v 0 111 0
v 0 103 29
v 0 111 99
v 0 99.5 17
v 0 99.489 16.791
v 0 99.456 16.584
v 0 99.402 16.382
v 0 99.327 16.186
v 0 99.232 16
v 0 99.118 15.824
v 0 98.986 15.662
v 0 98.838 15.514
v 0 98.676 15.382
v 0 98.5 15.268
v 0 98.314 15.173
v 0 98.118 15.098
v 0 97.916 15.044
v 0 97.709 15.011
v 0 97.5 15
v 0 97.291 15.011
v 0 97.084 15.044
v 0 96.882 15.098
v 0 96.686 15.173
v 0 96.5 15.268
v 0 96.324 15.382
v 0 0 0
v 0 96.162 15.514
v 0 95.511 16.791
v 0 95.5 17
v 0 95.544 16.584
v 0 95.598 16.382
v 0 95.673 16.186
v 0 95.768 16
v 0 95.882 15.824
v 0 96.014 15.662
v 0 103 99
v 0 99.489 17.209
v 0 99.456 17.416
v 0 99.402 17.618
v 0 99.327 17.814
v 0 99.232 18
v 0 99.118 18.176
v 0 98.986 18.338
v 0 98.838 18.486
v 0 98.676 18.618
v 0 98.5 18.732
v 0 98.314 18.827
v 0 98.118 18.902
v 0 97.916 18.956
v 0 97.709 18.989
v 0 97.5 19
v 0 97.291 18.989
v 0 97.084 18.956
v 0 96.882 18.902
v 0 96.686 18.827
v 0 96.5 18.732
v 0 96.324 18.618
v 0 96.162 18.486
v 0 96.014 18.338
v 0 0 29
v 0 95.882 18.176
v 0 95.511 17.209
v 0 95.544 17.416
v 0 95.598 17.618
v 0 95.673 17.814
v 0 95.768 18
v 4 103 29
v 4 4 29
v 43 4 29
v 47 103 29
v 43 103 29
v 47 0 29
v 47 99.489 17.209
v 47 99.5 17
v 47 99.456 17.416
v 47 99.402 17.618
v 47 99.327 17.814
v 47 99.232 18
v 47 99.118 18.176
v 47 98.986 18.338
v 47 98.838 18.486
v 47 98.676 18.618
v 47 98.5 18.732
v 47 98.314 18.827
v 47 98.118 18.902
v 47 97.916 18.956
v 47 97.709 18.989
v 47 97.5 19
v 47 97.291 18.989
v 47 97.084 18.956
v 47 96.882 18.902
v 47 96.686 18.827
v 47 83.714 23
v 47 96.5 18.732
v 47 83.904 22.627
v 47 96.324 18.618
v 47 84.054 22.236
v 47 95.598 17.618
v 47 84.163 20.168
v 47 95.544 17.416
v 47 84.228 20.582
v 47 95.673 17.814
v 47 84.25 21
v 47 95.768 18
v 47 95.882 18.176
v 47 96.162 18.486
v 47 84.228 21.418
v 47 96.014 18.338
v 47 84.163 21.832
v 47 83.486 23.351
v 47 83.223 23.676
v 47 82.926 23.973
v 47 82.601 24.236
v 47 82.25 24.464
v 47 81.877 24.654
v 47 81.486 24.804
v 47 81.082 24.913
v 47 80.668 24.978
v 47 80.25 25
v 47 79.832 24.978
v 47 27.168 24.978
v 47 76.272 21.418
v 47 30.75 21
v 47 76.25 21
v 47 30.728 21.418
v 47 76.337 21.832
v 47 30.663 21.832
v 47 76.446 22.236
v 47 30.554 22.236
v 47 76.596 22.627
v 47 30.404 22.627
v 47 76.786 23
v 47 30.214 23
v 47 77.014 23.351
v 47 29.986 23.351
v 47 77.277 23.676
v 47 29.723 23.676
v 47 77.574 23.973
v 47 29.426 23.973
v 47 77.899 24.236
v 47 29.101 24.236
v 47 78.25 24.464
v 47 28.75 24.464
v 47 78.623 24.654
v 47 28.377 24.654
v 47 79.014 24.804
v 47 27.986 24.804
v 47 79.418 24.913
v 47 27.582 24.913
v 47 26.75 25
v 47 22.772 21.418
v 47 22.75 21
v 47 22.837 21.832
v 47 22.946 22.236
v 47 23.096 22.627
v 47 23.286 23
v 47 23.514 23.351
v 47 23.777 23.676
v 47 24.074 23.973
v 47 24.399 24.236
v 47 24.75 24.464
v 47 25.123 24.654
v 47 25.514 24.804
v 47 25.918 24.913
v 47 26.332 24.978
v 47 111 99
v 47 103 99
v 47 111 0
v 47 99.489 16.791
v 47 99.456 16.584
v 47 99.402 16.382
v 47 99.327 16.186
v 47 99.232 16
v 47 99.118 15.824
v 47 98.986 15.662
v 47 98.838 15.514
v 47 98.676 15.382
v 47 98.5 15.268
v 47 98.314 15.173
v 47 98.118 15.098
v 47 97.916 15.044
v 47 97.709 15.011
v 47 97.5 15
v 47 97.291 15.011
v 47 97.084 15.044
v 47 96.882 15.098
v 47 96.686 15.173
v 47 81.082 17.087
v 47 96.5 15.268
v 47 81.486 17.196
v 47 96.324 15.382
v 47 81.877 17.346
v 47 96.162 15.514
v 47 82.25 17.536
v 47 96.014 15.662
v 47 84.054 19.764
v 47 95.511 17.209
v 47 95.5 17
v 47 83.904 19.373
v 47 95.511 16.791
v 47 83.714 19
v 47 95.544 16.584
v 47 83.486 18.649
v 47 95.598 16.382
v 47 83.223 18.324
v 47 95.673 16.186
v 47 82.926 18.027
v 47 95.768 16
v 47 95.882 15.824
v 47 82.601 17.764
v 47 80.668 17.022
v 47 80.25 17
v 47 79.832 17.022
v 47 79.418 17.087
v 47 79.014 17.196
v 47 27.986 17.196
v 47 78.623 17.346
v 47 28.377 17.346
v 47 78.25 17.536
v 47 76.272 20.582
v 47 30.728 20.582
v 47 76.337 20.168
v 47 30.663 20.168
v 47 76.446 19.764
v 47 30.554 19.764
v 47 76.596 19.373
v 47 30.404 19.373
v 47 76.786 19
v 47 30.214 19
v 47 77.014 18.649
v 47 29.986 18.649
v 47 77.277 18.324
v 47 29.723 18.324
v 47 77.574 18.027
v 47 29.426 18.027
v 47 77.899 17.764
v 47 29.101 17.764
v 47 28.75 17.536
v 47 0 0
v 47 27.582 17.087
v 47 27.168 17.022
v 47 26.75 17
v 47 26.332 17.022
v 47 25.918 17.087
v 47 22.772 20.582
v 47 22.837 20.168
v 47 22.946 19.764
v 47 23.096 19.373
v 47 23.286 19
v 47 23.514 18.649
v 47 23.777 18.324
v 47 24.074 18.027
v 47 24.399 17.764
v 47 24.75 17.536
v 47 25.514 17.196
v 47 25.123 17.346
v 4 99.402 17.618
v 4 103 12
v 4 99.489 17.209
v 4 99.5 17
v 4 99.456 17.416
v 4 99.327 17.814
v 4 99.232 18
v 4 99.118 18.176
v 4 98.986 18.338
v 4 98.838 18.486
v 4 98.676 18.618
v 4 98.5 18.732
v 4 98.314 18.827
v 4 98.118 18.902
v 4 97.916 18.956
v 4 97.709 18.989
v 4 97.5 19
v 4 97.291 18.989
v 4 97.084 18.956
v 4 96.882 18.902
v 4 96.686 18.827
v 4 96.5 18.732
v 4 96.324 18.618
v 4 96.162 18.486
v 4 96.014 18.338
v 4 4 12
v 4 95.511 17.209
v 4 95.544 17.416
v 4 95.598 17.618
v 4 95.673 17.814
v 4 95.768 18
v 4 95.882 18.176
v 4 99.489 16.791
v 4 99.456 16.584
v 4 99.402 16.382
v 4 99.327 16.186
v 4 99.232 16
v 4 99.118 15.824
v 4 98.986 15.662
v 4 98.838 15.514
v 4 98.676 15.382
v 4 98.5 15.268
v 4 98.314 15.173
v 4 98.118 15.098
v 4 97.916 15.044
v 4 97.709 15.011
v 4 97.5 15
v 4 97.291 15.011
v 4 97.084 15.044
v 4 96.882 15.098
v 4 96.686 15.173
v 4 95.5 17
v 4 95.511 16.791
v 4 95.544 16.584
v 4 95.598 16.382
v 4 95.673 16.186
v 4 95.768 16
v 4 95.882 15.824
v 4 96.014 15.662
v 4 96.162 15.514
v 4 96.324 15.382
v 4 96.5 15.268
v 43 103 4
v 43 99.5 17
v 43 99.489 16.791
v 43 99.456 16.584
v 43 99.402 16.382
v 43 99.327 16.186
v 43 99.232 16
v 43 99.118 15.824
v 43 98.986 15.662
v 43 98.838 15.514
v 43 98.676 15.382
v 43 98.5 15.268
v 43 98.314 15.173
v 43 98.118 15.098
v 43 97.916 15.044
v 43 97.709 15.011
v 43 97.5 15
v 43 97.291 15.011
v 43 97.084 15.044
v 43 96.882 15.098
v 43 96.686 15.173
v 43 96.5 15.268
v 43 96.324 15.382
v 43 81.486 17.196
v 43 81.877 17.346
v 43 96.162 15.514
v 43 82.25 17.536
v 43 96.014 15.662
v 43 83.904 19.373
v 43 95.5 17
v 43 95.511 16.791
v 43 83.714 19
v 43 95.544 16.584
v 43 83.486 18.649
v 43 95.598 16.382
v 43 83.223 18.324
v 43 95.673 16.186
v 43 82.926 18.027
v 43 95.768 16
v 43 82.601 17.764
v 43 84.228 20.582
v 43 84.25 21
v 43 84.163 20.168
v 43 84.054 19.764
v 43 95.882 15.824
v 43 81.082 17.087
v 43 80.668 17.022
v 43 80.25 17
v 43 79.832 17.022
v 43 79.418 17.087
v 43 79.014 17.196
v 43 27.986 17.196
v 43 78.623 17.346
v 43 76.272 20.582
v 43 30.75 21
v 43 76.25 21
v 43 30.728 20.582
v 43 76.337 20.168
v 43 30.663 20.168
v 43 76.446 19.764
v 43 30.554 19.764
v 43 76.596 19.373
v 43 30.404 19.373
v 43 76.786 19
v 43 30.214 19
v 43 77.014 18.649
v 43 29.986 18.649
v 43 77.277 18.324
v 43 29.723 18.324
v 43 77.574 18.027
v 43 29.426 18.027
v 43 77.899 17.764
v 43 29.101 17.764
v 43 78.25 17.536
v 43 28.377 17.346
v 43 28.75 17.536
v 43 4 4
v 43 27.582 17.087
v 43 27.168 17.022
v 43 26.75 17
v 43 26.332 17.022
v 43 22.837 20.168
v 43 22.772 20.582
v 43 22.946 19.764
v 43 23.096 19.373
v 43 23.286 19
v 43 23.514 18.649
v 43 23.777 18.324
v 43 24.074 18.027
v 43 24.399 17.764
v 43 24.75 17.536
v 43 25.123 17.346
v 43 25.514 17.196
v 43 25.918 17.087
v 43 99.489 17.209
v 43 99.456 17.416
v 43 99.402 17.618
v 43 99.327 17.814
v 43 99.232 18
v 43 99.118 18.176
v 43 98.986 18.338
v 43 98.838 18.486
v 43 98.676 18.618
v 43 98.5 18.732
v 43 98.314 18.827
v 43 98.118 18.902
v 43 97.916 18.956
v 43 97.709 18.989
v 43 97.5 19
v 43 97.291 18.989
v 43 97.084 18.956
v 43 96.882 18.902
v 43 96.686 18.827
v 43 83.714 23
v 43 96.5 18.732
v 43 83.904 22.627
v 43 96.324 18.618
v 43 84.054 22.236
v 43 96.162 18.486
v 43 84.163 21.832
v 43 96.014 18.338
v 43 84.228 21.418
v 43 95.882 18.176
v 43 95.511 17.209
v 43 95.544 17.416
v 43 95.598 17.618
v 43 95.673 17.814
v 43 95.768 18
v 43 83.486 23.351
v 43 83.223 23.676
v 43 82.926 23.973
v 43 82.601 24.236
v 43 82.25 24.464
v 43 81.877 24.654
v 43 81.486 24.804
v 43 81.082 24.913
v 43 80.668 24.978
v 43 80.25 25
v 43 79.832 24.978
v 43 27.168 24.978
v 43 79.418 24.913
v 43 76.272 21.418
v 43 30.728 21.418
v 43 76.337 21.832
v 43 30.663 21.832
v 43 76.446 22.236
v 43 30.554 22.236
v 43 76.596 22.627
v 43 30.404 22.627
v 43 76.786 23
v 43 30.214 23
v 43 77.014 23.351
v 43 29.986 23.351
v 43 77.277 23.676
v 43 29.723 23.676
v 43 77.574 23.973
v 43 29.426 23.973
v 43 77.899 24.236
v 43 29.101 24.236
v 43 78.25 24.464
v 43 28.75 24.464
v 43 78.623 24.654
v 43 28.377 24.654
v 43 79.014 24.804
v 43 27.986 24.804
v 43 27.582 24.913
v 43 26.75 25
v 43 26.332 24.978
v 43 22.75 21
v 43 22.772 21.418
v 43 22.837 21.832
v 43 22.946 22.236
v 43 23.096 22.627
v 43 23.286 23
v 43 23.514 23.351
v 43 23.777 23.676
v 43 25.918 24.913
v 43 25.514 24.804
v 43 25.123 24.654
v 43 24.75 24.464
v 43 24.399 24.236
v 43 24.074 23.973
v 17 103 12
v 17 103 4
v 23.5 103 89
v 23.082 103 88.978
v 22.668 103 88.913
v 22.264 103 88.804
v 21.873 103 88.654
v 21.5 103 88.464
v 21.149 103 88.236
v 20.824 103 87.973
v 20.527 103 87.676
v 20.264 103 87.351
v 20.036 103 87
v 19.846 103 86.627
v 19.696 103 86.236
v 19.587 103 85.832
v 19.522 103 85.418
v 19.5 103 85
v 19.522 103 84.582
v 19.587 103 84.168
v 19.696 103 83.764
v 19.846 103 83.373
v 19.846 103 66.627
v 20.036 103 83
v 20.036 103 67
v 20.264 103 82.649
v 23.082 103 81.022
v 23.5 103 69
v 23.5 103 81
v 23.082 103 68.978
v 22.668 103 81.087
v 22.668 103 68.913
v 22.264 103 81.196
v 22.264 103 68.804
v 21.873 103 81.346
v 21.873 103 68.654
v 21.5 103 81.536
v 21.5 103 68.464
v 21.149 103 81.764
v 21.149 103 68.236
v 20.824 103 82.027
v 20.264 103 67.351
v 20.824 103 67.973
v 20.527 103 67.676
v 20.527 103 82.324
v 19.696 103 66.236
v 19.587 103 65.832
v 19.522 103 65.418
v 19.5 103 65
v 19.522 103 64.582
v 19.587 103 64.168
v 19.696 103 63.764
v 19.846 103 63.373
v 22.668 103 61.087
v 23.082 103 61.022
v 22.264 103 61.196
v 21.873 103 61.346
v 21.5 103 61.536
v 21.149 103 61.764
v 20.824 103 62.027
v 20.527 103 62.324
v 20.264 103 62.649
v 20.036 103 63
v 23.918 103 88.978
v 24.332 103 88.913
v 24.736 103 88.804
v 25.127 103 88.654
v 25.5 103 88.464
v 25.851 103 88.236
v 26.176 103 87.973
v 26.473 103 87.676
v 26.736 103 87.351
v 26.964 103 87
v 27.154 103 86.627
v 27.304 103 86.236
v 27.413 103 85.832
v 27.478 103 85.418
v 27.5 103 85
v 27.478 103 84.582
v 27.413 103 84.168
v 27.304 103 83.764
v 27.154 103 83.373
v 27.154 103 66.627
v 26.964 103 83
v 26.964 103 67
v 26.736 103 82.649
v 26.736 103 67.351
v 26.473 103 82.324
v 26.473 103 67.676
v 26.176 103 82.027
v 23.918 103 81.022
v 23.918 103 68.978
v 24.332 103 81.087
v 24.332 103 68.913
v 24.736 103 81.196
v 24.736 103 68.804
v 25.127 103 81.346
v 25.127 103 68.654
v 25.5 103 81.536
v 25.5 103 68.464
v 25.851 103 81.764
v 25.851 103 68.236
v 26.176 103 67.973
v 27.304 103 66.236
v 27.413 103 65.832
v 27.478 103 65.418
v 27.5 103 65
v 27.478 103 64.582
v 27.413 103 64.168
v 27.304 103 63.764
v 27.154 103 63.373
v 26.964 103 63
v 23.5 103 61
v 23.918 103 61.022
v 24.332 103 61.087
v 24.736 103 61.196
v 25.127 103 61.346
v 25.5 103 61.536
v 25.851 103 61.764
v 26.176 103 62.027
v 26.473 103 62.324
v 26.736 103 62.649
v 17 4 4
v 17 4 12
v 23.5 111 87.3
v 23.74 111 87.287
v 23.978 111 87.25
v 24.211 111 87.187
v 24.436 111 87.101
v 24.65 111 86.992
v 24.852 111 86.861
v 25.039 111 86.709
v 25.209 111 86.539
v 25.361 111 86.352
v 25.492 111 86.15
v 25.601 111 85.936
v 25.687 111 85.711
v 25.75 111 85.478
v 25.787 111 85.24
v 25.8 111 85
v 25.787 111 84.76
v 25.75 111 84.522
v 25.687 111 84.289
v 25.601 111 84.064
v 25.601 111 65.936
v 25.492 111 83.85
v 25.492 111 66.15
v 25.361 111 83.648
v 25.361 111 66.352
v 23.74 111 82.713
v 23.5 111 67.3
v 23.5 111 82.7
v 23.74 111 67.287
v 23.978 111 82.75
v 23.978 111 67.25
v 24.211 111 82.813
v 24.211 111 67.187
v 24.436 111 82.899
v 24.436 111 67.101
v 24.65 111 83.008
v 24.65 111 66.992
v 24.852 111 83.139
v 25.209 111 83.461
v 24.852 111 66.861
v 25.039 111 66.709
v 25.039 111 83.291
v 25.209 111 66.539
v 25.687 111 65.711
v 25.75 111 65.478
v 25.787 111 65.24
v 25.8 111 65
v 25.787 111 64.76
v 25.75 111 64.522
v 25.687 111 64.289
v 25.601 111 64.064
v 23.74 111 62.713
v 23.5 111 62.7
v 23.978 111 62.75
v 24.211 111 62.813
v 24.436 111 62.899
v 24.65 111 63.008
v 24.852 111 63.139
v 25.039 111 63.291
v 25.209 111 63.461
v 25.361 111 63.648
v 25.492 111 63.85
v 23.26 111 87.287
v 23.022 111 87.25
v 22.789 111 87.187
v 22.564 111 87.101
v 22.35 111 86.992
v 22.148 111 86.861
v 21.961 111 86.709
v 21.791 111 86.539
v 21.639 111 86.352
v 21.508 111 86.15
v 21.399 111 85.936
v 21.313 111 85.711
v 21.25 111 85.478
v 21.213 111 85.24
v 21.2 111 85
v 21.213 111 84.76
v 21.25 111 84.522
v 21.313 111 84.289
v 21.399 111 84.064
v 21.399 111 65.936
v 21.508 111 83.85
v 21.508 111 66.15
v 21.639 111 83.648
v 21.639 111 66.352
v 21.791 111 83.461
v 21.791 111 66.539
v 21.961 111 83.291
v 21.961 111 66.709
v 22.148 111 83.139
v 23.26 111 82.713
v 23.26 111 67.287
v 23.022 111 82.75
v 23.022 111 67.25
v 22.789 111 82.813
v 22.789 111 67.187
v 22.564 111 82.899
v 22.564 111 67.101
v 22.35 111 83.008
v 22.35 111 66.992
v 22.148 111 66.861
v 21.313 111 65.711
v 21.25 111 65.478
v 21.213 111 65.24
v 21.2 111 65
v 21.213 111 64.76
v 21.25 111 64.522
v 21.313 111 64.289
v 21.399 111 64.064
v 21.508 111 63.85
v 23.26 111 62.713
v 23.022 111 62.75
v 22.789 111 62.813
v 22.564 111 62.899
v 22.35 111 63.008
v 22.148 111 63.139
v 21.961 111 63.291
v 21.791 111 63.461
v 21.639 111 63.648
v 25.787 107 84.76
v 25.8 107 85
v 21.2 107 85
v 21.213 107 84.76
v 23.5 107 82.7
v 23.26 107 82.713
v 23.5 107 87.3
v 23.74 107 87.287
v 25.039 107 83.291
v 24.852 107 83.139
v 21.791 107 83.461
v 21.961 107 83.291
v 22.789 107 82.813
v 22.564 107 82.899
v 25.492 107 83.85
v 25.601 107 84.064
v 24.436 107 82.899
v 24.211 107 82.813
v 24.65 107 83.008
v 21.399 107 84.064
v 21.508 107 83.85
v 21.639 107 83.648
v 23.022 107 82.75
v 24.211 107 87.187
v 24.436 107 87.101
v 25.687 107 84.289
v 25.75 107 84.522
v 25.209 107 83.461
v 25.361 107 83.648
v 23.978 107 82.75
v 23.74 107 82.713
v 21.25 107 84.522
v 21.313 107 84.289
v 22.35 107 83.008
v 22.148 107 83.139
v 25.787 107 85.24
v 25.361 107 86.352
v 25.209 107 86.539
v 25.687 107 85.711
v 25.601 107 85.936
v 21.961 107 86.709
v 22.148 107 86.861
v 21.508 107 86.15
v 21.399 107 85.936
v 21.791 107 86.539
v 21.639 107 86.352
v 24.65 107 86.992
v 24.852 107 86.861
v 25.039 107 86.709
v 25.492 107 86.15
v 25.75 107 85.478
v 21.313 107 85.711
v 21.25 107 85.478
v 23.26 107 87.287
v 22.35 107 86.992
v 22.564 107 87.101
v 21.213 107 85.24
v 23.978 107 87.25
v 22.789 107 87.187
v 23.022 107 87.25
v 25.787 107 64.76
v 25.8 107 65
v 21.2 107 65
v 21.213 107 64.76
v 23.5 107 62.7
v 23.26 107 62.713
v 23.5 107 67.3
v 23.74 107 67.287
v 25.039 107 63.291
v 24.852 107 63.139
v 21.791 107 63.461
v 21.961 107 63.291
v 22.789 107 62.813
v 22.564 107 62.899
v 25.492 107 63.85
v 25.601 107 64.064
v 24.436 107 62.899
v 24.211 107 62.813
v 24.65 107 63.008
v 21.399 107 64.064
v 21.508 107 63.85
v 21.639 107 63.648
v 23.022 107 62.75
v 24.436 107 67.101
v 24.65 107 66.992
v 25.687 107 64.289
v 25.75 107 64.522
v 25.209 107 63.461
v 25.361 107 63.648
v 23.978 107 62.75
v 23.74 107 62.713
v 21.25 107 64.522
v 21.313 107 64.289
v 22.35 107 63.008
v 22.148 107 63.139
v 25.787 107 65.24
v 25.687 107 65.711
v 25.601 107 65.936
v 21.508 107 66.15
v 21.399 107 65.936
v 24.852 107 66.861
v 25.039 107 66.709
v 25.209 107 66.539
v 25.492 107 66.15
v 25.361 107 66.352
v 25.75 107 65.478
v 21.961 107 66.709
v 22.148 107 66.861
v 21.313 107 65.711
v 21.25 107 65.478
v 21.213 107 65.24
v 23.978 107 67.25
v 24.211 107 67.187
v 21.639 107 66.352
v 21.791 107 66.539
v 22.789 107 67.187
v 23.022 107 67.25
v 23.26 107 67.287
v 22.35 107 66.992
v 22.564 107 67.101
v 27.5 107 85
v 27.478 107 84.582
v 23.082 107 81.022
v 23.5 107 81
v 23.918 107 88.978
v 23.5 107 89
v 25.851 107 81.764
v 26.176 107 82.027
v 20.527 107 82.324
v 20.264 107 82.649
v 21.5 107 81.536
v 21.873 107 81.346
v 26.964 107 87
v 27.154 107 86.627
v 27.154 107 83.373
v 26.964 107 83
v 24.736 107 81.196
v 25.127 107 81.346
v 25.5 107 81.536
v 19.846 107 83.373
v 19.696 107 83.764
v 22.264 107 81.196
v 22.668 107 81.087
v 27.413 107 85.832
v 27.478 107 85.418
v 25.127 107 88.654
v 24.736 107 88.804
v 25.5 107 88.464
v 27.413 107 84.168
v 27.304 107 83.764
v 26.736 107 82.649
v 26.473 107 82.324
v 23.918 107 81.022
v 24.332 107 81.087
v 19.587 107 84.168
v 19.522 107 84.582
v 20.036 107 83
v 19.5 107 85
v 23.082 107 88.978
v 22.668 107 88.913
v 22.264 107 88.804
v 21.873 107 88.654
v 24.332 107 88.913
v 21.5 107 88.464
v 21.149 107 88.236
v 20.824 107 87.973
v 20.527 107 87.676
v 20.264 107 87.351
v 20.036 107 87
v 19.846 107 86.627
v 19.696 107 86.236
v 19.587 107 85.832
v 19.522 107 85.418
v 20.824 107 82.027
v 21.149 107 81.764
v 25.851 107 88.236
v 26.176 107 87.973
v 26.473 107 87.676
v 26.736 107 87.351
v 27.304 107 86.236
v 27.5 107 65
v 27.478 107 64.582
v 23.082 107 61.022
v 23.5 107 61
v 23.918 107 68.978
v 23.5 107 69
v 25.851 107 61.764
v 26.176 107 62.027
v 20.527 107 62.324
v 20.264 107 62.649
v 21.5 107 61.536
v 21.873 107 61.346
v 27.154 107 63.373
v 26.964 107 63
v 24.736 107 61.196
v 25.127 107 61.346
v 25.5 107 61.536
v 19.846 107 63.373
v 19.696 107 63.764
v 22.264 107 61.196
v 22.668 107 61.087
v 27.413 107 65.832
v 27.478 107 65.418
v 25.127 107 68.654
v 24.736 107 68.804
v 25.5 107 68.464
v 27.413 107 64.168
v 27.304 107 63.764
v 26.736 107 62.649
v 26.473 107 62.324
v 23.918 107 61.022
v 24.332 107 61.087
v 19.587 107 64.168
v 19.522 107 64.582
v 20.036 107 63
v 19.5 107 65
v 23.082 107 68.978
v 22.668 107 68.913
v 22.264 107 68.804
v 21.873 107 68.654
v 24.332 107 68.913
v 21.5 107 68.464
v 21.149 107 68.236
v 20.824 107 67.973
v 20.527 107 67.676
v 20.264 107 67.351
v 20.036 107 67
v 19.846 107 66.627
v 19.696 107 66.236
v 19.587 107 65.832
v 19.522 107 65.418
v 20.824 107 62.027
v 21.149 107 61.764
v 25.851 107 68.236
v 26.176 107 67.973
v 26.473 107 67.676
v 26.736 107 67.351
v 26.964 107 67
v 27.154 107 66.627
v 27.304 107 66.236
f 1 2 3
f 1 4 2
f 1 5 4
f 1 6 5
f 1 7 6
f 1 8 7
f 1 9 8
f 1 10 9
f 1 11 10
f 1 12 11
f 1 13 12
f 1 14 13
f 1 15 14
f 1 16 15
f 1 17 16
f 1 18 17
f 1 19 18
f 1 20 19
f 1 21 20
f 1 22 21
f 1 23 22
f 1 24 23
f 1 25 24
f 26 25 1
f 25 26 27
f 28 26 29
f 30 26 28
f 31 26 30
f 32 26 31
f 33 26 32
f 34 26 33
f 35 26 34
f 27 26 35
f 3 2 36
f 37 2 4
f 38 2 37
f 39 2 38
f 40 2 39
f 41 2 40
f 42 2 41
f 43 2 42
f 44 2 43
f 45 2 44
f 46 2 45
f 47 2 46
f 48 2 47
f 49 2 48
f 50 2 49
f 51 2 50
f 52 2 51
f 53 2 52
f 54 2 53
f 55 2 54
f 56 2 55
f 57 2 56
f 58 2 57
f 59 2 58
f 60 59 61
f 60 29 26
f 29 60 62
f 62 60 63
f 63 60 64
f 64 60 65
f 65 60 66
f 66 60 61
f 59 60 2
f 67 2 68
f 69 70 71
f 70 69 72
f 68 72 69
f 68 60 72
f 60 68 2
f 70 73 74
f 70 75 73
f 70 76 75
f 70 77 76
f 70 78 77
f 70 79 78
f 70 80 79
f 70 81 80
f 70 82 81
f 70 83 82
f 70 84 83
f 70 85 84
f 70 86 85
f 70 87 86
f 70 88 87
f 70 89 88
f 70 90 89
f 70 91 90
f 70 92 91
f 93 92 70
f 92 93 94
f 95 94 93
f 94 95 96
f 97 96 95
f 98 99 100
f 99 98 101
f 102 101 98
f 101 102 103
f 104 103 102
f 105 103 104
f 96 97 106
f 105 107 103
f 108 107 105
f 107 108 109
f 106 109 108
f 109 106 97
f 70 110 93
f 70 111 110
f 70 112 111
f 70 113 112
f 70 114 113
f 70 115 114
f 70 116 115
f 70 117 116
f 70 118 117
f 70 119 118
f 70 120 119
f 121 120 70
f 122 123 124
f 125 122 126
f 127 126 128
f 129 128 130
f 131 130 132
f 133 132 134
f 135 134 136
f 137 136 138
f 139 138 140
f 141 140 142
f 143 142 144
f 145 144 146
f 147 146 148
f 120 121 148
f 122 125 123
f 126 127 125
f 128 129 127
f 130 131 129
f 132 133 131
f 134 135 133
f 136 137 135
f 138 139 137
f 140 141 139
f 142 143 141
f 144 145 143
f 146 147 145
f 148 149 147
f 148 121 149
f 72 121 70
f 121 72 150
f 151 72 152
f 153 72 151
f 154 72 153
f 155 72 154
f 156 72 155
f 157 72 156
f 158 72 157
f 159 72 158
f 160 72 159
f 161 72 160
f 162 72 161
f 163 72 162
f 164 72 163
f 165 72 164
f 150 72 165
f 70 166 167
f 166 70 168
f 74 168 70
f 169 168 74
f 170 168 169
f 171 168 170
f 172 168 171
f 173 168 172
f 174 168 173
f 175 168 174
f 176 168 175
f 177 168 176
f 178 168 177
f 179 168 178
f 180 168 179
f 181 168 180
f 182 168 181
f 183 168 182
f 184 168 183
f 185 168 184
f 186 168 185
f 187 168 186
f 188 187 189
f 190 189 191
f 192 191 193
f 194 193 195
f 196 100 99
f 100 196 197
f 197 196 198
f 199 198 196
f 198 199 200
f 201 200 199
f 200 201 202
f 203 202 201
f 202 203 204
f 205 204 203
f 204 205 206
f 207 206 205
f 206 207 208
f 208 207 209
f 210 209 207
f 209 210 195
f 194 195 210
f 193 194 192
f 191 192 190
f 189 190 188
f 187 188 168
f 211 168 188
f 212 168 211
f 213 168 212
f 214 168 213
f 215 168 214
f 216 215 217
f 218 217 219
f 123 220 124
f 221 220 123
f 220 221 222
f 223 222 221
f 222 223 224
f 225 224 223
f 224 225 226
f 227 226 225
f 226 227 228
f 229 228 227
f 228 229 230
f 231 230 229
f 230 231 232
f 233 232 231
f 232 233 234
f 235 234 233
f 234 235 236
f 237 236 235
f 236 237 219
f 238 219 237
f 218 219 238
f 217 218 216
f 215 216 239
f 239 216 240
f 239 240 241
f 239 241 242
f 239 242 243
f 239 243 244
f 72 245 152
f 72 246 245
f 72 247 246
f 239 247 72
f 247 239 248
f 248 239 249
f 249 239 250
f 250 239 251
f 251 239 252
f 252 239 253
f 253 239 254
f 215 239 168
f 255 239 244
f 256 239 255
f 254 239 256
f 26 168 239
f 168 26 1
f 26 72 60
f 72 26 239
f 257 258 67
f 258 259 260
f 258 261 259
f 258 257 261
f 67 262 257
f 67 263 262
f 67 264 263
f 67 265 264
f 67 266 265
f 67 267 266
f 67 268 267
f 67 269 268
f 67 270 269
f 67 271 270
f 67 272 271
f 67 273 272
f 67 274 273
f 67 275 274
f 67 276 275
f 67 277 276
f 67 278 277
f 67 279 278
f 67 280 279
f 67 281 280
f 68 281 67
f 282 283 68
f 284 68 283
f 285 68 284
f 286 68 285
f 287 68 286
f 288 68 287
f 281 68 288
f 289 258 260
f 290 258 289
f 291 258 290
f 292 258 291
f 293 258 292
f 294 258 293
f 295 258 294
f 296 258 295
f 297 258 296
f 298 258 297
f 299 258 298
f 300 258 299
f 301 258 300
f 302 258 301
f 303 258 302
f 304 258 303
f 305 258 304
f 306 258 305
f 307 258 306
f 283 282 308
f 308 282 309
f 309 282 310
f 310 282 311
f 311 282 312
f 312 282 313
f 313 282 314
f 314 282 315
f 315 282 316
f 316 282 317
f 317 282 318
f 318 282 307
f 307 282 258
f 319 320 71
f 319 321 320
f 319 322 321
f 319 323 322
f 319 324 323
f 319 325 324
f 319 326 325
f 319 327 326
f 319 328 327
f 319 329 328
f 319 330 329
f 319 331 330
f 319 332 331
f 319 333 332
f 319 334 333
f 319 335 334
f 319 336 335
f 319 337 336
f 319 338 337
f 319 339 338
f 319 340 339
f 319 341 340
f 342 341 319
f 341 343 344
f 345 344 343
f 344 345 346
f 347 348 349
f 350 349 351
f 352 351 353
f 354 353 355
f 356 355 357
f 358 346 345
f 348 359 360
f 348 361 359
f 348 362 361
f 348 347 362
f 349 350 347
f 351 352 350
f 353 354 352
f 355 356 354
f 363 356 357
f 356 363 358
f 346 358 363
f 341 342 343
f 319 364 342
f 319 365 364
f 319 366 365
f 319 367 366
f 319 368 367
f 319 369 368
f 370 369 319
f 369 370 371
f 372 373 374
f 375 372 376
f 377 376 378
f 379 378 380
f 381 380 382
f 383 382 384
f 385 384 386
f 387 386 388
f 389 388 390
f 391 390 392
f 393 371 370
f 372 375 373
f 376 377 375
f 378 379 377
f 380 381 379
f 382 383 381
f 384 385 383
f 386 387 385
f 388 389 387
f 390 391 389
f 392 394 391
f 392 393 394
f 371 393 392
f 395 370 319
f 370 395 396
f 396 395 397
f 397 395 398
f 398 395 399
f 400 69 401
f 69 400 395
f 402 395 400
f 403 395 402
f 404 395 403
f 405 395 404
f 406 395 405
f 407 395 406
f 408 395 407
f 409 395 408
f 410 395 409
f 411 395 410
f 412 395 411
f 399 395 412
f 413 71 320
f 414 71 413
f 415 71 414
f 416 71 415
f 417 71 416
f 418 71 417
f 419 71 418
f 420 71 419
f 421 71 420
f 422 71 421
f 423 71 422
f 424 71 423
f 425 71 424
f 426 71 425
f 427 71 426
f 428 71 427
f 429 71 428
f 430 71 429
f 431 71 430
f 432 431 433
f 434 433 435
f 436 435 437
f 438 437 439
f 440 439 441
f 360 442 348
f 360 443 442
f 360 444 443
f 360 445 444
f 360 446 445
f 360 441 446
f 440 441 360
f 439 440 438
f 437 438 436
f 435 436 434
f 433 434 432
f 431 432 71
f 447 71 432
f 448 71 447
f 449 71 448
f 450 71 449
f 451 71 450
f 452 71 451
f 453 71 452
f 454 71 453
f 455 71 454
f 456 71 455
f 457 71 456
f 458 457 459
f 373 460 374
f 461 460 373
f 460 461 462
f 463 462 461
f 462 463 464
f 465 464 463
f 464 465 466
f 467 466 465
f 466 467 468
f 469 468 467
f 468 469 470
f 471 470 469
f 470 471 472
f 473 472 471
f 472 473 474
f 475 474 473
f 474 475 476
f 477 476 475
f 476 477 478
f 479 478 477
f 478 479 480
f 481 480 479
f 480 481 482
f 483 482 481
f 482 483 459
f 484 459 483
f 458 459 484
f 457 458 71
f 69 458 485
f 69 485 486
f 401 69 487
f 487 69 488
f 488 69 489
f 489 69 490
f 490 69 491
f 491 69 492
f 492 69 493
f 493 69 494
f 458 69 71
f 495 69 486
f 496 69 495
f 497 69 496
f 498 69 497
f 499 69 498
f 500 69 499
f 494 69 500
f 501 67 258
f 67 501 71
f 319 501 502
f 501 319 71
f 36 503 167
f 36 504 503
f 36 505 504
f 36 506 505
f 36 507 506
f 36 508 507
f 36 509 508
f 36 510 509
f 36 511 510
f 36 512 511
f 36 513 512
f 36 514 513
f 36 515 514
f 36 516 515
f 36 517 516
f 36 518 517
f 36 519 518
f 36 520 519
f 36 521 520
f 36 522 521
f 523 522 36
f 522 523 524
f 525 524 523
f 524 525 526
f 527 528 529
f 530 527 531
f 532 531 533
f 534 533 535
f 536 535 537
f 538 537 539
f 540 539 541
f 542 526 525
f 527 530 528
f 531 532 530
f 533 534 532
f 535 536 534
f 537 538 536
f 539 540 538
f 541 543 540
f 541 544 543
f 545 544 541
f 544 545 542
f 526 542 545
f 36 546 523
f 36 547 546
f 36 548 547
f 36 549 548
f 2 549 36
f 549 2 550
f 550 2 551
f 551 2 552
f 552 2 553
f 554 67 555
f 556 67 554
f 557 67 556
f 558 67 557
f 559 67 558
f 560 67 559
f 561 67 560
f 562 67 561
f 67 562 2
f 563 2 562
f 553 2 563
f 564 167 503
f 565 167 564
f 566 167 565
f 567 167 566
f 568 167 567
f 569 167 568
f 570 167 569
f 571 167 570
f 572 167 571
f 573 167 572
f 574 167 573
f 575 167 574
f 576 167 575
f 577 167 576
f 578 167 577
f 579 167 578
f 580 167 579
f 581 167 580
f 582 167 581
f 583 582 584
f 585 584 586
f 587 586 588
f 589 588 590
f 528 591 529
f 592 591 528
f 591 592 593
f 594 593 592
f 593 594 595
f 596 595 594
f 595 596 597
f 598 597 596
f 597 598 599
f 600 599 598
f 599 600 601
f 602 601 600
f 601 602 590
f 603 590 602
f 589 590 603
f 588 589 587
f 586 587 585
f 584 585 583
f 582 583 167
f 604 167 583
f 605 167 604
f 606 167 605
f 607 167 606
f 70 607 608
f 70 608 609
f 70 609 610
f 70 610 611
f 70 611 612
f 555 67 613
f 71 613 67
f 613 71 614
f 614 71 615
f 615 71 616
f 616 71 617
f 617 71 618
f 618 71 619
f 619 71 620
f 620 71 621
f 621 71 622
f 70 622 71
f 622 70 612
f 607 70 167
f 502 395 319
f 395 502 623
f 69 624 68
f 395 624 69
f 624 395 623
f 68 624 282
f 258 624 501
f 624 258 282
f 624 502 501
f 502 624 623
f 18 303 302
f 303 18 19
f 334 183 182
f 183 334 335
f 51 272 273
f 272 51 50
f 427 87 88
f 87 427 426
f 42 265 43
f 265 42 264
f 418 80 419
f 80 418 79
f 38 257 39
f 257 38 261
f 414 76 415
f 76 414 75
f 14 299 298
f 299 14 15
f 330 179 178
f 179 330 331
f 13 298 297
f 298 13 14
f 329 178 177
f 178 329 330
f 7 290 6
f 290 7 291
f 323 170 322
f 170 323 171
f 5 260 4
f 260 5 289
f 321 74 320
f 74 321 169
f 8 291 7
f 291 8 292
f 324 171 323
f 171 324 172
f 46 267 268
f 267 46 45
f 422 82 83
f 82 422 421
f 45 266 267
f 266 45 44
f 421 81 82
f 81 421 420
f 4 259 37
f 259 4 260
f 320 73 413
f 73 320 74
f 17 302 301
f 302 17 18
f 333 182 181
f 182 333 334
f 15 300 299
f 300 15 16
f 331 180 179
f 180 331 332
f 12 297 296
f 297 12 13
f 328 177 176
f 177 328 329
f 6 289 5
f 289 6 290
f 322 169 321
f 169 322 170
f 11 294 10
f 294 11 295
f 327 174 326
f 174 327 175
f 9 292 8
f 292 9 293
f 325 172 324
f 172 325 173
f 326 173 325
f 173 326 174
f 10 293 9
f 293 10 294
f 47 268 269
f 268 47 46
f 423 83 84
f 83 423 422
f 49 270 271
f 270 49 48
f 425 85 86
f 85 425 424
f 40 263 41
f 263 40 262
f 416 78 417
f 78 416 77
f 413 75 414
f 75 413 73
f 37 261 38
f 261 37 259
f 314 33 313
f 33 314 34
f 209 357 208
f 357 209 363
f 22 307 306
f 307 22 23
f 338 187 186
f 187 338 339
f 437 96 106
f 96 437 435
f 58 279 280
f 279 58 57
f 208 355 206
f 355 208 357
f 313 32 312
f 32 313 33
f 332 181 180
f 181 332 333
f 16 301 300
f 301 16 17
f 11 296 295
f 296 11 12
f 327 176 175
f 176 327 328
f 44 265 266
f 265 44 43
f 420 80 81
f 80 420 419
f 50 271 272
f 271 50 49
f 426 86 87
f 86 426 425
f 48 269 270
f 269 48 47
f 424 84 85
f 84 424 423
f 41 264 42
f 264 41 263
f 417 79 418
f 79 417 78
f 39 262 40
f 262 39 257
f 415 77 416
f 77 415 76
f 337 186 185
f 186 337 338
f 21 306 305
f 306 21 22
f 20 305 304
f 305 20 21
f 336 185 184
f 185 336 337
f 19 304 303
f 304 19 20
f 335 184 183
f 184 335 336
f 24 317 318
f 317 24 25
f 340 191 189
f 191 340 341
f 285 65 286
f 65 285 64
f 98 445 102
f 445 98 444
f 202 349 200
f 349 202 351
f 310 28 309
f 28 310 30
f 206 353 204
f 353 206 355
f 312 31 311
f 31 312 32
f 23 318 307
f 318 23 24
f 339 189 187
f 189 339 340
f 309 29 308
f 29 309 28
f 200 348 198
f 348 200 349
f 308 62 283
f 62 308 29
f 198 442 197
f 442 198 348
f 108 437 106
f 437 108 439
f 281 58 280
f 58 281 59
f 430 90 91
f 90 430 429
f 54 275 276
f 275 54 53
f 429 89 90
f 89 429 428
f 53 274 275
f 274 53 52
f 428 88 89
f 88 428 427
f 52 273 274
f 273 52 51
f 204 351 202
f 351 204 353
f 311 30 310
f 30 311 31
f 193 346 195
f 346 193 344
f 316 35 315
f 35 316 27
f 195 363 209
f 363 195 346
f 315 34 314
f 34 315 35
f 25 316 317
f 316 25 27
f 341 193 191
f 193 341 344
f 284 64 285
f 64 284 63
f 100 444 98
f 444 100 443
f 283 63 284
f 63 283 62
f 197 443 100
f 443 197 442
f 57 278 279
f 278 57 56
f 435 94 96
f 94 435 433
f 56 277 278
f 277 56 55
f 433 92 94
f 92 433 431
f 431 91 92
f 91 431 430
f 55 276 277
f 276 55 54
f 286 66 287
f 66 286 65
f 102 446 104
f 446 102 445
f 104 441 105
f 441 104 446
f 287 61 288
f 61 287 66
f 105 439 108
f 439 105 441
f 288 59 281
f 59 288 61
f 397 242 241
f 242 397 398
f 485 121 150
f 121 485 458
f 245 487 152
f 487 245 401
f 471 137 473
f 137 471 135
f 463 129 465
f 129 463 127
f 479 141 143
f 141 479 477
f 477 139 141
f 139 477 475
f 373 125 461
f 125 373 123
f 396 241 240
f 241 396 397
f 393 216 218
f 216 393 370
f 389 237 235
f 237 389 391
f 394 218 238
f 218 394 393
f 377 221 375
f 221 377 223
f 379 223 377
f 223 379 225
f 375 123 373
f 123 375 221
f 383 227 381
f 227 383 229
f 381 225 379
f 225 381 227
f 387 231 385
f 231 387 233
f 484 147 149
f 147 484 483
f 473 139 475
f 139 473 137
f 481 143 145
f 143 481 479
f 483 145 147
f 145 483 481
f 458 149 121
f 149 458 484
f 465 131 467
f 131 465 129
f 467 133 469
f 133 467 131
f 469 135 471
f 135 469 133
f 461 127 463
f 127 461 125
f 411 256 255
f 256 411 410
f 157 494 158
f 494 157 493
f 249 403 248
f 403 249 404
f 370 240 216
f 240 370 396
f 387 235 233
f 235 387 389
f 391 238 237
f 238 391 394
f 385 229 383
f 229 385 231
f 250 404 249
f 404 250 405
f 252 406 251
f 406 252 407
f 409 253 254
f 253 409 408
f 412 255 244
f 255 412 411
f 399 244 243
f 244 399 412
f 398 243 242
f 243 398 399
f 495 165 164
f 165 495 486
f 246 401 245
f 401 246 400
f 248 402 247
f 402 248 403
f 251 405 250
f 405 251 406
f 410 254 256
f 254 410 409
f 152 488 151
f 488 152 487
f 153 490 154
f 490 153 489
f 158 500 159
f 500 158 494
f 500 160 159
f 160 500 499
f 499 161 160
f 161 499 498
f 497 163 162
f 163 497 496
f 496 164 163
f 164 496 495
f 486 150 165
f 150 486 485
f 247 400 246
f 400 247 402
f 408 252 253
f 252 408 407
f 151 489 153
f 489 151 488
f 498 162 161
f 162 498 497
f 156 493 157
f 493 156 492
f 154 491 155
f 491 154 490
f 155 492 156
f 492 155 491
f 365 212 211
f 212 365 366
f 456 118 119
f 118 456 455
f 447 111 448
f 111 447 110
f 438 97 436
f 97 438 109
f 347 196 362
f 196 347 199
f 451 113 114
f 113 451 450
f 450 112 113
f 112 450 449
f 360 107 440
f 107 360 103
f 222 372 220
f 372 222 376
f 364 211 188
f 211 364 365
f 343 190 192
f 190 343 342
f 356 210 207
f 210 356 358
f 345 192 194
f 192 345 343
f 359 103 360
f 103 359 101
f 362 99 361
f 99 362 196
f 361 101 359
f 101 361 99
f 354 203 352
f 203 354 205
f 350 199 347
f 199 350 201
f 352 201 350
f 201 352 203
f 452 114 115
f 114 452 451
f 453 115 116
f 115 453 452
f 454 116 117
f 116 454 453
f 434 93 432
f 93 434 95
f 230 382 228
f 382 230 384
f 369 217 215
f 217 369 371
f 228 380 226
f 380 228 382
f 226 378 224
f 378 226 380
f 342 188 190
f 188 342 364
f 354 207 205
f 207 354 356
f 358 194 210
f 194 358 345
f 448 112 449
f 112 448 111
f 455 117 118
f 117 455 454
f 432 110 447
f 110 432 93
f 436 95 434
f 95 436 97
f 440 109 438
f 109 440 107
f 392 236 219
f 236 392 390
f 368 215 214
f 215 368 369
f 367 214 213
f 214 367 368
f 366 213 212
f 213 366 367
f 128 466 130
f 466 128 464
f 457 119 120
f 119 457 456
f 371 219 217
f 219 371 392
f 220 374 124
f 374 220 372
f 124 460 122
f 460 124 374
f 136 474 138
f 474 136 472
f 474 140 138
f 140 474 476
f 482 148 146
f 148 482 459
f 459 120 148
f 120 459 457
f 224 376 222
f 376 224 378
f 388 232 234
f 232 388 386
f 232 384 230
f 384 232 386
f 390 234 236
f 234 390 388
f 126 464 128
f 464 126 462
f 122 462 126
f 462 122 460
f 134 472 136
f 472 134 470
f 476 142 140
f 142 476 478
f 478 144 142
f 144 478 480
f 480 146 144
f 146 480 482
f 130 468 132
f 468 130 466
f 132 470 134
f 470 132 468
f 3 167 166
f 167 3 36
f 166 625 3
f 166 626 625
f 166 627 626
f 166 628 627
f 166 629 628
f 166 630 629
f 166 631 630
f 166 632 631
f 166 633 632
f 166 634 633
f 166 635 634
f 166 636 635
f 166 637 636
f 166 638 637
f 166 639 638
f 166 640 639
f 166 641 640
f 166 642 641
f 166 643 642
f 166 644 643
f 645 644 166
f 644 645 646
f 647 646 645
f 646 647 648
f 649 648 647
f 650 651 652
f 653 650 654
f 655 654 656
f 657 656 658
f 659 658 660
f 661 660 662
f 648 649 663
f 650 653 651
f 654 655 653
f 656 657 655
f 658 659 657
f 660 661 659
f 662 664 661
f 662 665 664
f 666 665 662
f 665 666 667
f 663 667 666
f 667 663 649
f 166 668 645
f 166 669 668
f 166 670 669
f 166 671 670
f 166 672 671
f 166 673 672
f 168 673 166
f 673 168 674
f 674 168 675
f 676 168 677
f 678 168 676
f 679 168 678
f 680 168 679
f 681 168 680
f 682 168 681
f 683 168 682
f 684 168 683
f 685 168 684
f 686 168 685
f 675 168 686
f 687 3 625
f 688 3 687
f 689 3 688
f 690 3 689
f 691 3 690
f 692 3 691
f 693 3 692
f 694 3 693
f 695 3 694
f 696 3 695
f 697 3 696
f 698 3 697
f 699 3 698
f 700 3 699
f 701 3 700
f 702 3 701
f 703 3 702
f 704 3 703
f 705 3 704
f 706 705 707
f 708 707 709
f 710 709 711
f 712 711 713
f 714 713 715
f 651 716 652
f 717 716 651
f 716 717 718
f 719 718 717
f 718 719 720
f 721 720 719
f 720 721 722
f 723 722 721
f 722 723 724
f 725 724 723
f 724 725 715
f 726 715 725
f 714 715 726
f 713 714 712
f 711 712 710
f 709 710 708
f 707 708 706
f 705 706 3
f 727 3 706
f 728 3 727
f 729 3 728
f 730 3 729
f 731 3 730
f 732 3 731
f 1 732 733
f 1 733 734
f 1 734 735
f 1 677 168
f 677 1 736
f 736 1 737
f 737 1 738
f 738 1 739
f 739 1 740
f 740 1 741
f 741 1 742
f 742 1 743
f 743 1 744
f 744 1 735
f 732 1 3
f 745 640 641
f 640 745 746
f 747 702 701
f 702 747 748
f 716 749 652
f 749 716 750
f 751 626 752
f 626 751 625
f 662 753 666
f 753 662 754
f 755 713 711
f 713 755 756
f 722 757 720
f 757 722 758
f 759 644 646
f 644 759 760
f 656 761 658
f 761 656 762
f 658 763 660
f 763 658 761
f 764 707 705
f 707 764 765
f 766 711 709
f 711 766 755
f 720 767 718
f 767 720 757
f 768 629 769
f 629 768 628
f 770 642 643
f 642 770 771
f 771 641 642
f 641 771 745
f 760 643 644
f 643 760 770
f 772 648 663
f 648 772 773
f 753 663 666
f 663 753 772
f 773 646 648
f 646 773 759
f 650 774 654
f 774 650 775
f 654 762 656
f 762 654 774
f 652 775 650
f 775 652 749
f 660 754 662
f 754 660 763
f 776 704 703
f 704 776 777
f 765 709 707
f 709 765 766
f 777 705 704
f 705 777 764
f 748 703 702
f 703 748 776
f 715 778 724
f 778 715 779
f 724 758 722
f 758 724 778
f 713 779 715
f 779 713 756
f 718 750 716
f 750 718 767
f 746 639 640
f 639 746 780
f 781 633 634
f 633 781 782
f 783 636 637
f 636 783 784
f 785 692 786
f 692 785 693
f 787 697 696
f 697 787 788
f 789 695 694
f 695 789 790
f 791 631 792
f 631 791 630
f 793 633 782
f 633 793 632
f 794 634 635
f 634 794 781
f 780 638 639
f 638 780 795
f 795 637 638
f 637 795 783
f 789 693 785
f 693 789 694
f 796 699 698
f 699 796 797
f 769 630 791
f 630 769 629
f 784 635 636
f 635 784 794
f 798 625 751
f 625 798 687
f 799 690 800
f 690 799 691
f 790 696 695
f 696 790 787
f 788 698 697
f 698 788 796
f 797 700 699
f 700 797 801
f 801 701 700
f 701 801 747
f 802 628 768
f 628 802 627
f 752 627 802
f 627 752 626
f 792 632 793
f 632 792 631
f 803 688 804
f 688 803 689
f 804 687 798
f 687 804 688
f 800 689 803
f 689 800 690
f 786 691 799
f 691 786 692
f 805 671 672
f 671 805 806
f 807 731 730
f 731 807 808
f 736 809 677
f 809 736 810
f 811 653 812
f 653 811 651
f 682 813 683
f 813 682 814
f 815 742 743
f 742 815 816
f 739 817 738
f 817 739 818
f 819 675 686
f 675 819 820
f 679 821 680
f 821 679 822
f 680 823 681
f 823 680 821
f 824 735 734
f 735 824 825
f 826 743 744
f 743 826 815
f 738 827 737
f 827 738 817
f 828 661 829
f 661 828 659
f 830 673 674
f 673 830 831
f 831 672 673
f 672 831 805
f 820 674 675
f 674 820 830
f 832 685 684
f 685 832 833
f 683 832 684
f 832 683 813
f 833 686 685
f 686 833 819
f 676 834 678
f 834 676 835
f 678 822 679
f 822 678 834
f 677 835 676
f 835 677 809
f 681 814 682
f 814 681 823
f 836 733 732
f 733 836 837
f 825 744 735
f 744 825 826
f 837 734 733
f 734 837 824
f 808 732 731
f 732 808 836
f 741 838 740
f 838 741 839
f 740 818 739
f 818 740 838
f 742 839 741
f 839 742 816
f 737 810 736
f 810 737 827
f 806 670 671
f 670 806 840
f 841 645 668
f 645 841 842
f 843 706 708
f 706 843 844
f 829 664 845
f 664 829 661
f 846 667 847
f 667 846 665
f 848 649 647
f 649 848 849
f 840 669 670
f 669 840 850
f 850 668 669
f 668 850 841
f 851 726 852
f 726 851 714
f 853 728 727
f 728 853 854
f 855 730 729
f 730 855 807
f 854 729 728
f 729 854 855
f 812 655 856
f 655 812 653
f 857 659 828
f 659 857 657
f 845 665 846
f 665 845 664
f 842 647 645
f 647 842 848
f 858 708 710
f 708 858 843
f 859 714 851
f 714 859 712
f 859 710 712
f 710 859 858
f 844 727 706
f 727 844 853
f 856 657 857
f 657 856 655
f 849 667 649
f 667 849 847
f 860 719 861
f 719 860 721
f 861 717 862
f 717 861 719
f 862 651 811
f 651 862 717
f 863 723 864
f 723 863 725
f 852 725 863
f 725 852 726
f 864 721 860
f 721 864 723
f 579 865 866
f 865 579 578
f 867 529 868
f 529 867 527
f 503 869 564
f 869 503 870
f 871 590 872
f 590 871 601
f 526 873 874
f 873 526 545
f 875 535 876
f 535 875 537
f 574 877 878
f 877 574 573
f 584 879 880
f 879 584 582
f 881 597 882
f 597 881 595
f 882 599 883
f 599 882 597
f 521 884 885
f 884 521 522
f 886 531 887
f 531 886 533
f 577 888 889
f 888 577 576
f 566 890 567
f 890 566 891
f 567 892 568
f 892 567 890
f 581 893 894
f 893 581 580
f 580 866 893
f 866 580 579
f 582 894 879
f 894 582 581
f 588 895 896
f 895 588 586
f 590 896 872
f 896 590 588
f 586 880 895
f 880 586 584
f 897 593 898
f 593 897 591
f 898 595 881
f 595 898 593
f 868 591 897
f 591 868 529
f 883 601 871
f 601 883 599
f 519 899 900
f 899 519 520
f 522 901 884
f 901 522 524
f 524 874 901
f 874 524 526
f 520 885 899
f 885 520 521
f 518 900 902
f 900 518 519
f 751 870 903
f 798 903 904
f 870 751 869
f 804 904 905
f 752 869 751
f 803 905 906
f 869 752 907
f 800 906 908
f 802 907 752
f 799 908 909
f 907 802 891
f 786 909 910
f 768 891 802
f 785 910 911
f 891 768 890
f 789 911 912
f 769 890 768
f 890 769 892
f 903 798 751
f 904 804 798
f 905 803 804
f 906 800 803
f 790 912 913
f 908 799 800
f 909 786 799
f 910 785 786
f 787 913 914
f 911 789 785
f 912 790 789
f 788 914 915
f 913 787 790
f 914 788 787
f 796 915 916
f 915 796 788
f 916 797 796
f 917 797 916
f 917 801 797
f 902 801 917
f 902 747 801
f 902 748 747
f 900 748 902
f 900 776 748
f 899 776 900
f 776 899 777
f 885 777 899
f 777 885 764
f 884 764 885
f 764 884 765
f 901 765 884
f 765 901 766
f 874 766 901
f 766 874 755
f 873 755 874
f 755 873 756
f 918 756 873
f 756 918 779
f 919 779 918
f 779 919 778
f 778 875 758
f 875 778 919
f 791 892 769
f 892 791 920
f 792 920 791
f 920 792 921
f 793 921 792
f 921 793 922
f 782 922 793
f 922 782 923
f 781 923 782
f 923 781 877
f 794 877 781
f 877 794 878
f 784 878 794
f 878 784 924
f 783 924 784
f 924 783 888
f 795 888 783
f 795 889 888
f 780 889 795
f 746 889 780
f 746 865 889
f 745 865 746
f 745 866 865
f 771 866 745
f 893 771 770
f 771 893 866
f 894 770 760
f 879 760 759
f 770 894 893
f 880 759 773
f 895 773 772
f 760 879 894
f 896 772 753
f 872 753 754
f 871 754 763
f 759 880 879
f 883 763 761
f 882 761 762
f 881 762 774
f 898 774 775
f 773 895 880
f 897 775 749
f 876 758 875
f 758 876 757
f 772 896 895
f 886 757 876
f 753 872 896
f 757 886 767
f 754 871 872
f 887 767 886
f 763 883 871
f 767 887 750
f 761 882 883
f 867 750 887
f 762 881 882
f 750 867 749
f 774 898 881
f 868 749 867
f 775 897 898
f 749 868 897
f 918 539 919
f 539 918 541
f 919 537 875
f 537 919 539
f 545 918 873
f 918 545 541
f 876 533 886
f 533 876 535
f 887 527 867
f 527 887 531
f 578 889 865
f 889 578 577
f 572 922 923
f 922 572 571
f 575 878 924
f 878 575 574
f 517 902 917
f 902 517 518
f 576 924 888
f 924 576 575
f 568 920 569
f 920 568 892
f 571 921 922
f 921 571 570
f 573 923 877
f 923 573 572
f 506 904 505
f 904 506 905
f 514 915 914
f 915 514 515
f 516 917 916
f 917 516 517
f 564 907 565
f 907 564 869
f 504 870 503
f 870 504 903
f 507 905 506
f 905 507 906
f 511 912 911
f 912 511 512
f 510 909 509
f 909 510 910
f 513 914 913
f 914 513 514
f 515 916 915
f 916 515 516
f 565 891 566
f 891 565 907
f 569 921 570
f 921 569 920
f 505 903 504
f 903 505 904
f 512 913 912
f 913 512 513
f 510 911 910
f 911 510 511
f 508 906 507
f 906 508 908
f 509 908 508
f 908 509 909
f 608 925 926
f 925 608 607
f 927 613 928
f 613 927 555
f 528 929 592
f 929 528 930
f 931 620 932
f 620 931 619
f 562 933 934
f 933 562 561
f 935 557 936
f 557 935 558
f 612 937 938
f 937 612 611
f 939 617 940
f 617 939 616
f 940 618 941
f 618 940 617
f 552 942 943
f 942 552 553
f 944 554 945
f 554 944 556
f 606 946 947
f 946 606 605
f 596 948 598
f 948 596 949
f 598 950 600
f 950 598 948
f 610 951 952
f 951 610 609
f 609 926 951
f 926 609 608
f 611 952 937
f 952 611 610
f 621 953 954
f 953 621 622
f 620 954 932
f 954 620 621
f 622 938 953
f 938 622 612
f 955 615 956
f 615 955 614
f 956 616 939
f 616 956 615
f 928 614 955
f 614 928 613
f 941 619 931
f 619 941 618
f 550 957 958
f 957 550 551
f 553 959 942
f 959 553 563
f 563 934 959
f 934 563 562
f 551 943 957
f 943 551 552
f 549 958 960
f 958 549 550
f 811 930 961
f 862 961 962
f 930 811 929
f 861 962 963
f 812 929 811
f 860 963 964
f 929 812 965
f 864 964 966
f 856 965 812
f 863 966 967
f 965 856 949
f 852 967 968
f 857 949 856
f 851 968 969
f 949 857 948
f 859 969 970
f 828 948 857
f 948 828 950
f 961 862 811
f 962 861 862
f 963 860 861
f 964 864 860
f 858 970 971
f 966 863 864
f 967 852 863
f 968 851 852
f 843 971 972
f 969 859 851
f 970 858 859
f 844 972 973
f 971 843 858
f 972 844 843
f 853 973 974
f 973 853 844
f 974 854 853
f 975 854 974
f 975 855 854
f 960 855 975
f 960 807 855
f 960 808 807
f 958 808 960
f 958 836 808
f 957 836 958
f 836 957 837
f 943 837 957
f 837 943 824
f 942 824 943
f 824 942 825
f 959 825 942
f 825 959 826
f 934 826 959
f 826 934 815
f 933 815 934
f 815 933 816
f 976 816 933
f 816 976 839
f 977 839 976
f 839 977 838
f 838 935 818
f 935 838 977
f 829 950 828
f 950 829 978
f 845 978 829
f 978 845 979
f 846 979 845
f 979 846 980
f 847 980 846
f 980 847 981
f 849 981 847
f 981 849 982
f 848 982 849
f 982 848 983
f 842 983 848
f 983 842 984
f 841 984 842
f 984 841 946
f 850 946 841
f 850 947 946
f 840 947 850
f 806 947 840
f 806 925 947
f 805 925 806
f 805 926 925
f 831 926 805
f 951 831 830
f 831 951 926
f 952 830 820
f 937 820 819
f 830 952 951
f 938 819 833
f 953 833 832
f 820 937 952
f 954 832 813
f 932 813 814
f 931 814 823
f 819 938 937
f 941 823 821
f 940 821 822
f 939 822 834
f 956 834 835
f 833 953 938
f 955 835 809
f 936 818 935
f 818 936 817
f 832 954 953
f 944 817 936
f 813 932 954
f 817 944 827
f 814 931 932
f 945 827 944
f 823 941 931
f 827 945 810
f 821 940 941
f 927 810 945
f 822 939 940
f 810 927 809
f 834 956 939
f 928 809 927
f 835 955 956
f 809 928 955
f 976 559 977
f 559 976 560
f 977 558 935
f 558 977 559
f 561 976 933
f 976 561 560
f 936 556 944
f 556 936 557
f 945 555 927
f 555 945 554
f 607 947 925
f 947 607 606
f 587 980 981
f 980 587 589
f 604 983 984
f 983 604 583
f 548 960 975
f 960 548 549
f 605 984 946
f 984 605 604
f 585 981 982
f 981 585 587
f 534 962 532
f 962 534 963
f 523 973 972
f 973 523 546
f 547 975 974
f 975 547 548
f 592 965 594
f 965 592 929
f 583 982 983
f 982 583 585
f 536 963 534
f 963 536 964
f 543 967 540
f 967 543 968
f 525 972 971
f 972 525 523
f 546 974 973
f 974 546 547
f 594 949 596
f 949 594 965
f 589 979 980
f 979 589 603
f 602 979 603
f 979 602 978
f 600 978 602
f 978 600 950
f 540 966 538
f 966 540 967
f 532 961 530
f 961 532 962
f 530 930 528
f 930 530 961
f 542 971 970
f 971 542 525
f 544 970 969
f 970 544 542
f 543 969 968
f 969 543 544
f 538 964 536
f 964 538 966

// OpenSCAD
$fn = 60;

x = 39;
y = 99;
h = 17 + 8;

w = 4;

//--------------------------------------------------------

difference() {
	  union() {
			difference() {
				  cube([x + 2 * w, y + 2 * w, h + w]);
				  translate([w , w, w]) cube([x, y, h]);
			}
			translate([w , w, w]) cube([13, y, 8]);
	  }
	  translate([0 , w + y - 5.5, w + 8 + 5]) rotate([0, 90, 0]) cylinder(h=x + 2 * w, d=4);
	  translate([w + x , (w + y + w) / 4 * 1, w + h - 8]) rotate([0, 90, 0]) cylinder(h=w, d=8);
	  translate([w + x , (w + y + w) / 4 * 3, w + h - 8]) rotate([0, 90, 0]) cylinder(h=w, d=8);
}

difference() {
	  translate([0 , w + y, 0]) cube([w + x + w, 8, (126 + w +8) / 2 + 30]);
	  translate([(w + x + w) / 2 , w + y, w + 8 + (126 / 2) + 10]) rotate([-90, 0, 0]) cylinder(h=8, d=4.6);
	  translate([(w + x + w) / 2 , w + y, w + 8 + (126 / 2) - 10]) rotate([-90, 0, 0]) cylinder(h=8, d=4.6);

	  translate([(w + x + w) / 2 , w + y - 4, w + 8 + (126 / 2) + 10]) rotate([-90, 0, 0]) cylinder(h=8, d=8);
	  translate([(w + x + w) / 2 , w + y - 4, w + 8 +(126 / 2) - 10]) rotate([-90, 0, 0]) cylinder(h=8, d=8);

}
